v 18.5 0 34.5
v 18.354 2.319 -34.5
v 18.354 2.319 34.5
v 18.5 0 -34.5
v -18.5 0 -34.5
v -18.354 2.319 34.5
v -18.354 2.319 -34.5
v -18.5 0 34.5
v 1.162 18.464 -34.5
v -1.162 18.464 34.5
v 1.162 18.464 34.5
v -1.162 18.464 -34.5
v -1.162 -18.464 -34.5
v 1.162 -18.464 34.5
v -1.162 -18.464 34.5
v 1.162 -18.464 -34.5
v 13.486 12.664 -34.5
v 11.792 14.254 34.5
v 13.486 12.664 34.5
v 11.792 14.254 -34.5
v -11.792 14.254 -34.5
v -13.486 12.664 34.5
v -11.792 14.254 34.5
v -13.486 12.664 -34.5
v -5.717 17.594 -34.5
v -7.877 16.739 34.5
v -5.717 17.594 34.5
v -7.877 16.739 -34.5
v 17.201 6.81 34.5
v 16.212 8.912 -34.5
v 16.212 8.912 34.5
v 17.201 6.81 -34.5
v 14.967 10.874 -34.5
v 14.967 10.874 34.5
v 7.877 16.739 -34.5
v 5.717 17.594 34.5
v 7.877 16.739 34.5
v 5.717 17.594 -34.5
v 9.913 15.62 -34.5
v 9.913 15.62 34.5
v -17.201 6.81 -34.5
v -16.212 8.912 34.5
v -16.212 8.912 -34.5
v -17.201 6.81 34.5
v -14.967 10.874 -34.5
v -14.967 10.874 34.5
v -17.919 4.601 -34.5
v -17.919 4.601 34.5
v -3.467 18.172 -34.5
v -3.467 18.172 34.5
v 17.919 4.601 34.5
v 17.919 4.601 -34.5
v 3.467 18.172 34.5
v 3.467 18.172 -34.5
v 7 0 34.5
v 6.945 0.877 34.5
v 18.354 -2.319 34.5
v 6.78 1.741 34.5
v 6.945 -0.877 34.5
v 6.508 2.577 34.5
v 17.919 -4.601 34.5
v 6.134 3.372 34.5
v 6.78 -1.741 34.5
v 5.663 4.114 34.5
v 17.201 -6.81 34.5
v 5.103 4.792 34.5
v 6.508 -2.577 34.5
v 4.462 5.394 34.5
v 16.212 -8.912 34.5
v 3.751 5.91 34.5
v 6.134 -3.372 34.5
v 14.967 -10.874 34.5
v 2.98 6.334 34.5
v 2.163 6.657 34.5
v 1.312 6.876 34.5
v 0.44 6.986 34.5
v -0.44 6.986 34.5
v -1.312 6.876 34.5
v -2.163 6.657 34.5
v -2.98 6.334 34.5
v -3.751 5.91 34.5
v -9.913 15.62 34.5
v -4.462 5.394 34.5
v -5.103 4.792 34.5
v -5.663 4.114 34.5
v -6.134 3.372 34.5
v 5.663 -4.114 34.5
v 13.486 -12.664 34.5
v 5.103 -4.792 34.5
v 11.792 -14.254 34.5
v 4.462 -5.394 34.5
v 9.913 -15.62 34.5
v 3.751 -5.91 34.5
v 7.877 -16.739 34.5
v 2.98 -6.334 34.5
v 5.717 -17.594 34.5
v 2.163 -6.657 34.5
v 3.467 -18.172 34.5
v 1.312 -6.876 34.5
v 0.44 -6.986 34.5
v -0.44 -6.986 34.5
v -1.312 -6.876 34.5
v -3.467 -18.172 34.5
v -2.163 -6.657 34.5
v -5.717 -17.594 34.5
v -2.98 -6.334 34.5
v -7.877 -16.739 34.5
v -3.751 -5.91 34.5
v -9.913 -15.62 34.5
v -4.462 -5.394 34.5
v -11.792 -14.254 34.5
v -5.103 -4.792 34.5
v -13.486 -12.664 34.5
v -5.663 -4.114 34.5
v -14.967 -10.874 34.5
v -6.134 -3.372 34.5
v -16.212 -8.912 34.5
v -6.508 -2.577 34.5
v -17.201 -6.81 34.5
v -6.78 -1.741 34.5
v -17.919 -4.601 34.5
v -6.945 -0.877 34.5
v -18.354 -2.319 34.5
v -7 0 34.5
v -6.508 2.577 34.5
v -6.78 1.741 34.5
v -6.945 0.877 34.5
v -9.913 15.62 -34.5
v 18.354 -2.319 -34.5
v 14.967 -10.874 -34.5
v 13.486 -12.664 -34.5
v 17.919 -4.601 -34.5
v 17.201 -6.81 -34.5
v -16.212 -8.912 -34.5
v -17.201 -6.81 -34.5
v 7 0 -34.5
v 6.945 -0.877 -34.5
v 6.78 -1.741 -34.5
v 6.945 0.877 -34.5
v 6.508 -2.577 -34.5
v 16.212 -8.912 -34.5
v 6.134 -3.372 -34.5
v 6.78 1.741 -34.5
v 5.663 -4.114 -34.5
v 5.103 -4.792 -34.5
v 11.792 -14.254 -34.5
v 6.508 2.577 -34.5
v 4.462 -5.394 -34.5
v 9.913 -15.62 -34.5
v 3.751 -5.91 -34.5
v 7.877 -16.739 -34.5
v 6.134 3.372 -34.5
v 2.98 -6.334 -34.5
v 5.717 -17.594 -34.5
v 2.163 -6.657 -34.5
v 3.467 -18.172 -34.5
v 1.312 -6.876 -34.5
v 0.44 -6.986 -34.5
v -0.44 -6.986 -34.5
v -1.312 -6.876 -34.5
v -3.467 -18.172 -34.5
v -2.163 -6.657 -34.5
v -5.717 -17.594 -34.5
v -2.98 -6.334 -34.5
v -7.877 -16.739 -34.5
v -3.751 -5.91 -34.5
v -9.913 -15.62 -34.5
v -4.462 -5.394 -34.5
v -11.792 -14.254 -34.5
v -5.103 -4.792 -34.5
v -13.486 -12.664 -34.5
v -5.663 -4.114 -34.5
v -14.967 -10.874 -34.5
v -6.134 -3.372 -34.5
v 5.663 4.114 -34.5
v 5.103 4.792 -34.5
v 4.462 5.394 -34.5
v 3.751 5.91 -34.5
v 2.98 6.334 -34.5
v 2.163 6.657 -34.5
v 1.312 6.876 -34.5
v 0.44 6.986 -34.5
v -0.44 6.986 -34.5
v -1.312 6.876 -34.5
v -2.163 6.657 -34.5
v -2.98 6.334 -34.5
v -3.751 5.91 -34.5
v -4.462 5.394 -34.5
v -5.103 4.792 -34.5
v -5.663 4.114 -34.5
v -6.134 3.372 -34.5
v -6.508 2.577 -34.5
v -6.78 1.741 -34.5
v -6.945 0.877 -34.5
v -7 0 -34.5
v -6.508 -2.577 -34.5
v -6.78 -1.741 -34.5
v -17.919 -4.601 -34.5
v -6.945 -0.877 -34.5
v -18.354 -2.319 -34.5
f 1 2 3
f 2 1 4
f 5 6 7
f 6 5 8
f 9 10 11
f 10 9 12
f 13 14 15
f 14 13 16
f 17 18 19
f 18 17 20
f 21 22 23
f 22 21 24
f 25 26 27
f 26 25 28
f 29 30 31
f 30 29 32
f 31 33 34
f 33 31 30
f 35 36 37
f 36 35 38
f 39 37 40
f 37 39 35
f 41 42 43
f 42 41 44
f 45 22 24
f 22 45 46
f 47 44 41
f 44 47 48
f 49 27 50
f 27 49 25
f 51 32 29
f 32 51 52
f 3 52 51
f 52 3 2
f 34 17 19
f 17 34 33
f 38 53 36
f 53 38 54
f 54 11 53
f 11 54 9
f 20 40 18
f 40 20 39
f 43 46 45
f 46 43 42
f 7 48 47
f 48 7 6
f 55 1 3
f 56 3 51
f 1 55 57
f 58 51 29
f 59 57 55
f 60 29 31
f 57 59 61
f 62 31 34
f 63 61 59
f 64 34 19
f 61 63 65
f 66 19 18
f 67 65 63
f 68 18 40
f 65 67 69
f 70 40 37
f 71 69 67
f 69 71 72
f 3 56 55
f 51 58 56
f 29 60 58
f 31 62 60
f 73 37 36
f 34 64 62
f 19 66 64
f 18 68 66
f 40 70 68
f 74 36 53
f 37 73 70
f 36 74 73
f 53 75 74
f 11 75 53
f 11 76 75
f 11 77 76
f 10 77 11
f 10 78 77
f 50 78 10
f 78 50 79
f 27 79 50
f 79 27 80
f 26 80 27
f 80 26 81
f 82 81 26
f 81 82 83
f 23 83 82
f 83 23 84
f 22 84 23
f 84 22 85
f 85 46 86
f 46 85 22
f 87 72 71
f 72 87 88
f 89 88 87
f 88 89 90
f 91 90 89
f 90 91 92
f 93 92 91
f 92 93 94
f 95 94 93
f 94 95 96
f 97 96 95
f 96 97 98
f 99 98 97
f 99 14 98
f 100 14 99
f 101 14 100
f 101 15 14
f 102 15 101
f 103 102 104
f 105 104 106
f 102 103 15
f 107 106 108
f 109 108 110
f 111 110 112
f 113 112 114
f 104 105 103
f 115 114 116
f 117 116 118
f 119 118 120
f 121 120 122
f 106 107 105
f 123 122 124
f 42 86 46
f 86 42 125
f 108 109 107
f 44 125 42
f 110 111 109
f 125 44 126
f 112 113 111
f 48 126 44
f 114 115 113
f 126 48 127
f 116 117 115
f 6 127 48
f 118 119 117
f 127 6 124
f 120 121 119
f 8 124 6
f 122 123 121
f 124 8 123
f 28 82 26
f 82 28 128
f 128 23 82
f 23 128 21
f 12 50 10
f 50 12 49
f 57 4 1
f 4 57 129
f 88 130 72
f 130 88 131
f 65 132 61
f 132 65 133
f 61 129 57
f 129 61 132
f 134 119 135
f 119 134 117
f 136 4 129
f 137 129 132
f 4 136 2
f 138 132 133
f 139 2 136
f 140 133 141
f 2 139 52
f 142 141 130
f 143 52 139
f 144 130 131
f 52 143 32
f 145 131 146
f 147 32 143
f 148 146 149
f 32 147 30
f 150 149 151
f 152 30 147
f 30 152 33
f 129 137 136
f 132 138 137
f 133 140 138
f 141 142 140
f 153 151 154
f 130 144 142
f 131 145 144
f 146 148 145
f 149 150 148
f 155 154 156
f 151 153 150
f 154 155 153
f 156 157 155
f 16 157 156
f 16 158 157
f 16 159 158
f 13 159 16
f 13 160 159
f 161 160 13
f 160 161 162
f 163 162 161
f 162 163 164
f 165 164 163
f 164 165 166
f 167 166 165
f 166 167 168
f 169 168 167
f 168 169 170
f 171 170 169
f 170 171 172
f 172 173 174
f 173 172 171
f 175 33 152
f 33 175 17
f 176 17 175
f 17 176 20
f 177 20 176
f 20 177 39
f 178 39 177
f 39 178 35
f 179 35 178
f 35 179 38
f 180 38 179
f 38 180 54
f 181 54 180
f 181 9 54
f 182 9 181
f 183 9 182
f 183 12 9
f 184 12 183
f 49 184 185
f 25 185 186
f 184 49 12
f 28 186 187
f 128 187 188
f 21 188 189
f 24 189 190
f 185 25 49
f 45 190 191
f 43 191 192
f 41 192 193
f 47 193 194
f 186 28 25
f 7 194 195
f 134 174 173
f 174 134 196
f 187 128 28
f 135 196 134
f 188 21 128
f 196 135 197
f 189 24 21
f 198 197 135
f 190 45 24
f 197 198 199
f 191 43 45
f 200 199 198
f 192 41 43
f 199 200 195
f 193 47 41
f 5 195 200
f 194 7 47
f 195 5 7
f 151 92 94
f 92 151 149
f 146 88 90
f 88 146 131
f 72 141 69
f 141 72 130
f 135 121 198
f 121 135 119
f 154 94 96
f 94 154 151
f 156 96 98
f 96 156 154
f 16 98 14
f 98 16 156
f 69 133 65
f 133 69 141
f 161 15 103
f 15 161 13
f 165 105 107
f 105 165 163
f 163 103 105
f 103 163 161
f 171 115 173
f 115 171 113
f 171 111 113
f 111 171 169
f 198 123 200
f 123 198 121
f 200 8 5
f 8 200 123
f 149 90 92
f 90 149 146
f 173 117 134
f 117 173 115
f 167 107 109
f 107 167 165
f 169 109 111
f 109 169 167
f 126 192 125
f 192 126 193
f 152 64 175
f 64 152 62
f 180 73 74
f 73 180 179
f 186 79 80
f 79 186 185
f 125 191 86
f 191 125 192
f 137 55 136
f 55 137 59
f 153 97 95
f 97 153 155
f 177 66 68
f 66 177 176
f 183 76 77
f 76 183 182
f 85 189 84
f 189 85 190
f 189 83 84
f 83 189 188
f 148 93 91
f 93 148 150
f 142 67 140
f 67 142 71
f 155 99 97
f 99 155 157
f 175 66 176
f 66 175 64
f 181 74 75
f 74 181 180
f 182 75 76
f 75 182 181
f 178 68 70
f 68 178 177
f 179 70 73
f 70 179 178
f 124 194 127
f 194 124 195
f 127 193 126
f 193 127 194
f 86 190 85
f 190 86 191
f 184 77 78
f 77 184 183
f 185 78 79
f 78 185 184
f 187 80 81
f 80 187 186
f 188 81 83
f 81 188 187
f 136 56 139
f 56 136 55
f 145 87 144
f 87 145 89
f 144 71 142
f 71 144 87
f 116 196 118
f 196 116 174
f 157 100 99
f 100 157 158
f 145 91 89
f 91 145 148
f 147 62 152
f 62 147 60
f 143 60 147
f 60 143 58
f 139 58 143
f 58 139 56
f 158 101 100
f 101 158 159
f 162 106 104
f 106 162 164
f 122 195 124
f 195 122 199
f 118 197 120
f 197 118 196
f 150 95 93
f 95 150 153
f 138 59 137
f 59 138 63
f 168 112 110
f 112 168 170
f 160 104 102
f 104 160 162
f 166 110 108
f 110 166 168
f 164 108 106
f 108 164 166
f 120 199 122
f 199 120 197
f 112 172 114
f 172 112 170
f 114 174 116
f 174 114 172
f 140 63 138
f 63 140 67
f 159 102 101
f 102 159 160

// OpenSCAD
$fn = 50;


difference() {
	union() {
		translate(v = [0, 0, -34.5000000000]) {
			cylinder(h = 69, r = 18.5000000000);
		}
	}
	union() {
		translate(v = [0, 0, -100.0000000000]) {
			cylinder(h = 200, r = 7);
		}
	}
}
